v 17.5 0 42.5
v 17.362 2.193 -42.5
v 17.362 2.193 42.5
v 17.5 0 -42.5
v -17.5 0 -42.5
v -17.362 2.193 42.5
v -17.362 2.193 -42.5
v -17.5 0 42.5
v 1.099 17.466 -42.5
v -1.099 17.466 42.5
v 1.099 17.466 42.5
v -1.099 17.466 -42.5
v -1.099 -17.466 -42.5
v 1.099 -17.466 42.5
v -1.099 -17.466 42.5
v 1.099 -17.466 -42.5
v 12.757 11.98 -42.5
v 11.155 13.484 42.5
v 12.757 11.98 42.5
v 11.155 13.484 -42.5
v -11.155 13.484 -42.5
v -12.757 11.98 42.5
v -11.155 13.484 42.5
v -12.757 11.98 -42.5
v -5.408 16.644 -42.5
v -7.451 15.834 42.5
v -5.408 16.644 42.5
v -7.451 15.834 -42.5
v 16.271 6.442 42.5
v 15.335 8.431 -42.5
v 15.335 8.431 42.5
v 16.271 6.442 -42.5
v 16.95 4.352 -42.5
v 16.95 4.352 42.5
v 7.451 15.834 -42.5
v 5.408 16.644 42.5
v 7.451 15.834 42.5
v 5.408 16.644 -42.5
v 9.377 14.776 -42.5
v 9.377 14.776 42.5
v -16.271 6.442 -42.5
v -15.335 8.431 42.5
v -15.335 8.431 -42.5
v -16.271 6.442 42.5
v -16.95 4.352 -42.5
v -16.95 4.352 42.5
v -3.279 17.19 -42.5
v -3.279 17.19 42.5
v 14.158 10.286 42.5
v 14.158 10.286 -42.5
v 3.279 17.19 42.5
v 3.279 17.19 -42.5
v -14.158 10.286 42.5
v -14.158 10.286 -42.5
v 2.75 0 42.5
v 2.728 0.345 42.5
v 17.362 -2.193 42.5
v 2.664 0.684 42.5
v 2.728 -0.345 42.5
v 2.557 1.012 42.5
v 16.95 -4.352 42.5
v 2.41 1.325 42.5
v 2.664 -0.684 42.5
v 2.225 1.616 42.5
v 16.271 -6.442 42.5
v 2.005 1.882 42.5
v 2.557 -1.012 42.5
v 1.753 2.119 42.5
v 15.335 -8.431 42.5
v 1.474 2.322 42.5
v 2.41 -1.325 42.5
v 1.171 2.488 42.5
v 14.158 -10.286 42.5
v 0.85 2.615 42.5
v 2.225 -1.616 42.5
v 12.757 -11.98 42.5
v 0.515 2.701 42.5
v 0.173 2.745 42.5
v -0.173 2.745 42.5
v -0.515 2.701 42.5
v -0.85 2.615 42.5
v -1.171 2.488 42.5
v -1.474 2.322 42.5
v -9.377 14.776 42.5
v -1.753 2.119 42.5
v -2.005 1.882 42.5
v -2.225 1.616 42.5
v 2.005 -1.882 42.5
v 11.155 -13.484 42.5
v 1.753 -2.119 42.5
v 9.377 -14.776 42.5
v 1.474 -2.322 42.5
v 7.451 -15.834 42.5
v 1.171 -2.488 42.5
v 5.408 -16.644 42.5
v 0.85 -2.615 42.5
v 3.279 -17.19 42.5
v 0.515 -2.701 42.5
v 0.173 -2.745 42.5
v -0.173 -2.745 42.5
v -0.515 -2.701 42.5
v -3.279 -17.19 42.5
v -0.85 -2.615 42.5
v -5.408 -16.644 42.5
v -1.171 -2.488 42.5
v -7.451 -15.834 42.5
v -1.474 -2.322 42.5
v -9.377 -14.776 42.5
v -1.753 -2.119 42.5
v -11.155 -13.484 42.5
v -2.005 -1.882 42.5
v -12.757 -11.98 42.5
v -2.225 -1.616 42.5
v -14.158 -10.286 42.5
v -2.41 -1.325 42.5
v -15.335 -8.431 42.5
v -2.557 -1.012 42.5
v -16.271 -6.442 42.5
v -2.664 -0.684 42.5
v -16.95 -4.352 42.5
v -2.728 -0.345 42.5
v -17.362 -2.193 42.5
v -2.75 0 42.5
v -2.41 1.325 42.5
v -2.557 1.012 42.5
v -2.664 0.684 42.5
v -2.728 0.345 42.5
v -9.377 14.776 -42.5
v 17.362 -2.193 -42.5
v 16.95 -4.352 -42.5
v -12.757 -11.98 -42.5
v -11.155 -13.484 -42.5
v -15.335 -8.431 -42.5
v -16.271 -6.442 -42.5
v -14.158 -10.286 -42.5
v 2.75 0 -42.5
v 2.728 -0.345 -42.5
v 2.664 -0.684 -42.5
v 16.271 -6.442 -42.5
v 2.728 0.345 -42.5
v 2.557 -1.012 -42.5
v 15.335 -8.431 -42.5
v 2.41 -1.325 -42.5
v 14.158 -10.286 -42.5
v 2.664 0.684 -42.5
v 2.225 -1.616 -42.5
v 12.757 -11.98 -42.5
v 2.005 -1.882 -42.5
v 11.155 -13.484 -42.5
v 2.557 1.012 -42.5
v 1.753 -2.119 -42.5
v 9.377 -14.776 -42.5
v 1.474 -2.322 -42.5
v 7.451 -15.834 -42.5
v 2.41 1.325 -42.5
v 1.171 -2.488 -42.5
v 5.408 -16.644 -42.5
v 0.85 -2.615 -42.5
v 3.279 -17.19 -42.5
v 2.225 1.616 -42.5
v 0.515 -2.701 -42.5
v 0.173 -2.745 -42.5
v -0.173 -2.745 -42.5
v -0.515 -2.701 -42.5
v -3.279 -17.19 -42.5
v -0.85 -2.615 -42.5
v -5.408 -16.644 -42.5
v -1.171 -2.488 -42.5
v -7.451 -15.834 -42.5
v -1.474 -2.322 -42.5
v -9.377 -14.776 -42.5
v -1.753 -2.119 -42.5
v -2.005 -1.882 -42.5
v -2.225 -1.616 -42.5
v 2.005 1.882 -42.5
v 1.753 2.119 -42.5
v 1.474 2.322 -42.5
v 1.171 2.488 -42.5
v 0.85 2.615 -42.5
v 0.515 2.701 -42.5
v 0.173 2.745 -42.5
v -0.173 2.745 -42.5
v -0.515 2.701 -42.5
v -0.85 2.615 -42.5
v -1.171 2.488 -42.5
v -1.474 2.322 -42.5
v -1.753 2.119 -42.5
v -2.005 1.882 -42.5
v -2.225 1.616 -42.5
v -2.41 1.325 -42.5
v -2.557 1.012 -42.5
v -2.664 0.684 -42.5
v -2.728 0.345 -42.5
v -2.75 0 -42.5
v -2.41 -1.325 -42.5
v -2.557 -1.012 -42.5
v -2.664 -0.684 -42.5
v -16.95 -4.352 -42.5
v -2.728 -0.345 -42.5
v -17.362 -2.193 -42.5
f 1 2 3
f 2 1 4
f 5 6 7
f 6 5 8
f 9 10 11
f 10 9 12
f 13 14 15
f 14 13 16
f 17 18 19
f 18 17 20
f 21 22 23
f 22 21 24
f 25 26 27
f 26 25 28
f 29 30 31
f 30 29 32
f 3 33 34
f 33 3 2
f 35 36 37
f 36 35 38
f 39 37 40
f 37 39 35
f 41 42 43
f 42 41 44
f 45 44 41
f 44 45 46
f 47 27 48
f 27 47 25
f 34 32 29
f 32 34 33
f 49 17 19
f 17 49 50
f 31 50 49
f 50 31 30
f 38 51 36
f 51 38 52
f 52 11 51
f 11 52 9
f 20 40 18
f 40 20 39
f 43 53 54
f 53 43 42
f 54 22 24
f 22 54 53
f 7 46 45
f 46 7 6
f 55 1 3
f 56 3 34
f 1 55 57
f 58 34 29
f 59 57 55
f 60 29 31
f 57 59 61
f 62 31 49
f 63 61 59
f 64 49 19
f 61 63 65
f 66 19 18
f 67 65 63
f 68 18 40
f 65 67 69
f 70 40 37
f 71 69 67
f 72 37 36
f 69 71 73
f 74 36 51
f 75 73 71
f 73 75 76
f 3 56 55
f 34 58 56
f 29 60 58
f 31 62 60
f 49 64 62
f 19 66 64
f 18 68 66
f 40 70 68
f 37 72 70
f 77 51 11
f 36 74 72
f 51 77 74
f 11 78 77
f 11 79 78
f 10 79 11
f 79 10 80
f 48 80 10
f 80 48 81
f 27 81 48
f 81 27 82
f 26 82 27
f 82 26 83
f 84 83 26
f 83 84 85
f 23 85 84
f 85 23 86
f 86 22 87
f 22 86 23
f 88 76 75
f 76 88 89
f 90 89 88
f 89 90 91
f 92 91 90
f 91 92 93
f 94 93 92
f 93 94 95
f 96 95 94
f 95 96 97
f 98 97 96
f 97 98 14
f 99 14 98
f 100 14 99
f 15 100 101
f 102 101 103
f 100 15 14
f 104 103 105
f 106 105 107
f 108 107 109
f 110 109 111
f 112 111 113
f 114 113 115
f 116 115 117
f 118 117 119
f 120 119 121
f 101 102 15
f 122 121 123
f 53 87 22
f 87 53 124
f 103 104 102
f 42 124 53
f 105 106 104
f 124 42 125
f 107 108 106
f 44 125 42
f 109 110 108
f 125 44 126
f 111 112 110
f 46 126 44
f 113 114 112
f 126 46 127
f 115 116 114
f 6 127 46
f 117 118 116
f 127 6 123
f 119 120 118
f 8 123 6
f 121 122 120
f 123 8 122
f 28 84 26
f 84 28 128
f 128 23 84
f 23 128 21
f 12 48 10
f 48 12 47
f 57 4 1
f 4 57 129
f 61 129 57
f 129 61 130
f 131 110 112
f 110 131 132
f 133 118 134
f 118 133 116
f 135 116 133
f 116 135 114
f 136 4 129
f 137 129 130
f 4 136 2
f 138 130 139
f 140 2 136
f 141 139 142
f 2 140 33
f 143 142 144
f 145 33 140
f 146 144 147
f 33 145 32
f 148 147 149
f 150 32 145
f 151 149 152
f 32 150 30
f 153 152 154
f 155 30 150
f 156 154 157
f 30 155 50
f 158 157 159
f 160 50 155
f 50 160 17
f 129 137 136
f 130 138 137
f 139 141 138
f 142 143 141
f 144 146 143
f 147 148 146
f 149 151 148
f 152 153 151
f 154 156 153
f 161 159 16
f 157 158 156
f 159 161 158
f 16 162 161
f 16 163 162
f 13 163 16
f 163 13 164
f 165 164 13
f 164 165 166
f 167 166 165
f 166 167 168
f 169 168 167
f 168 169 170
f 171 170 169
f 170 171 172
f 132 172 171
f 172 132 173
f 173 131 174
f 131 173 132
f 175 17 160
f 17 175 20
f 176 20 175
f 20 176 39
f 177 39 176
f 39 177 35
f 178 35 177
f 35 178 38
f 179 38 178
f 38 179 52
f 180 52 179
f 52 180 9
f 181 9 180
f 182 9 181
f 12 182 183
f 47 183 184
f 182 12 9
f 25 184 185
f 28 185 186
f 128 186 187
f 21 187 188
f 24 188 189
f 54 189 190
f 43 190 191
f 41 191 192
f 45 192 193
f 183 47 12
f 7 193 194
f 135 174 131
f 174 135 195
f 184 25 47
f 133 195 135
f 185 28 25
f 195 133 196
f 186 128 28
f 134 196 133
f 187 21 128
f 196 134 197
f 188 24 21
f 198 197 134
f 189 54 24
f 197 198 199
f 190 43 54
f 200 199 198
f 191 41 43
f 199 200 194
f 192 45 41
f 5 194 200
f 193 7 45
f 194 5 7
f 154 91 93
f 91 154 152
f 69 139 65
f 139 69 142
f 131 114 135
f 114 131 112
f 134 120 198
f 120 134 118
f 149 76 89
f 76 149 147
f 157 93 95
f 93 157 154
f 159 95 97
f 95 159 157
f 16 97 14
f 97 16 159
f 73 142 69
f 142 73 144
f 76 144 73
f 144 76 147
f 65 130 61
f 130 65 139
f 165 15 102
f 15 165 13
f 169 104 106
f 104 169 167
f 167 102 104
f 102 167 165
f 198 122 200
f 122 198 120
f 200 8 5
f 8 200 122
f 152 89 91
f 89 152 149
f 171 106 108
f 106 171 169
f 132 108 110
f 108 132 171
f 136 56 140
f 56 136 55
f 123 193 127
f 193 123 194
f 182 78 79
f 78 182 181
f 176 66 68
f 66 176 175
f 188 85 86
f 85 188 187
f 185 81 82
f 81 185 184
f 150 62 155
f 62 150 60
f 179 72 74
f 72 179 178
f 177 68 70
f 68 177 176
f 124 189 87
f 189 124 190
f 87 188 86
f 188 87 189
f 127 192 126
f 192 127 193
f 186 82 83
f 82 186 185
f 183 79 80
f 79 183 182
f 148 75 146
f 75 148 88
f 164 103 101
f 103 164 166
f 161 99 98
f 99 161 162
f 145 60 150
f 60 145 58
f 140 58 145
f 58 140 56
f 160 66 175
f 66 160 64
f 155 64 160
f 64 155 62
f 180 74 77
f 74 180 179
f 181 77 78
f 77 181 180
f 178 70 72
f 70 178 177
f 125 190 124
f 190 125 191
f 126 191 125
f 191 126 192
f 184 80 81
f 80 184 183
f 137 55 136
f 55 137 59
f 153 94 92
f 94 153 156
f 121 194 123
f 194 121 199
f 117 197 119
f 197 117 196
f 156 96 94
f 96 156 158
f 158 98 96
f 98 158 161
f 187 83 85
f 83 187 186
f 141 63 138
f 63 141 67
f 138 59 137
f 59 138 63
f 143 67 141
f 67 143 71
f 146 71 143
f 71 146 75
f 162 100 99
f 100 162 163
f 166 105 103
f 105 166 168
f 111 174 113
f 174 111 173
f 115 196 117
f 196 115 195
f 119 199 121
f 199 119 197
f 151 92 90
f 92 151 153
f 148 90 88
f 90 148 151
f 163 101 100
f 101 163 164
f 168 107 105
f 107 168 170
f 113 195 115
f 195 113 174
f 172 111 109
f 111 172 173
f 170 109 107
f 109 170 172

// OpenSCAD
$fn = 50;


difference() {
	union() {
		translate(v = [0, 0, -42.5000000000]) {
			cylinder(h = 85, r = 17.5000000000);
		}
	}
	union() {
		translate(v = [0, 0, -100.0000000000]) {
			cylinder(h = 200, r = 2.7500000000);
		}
	}
}
